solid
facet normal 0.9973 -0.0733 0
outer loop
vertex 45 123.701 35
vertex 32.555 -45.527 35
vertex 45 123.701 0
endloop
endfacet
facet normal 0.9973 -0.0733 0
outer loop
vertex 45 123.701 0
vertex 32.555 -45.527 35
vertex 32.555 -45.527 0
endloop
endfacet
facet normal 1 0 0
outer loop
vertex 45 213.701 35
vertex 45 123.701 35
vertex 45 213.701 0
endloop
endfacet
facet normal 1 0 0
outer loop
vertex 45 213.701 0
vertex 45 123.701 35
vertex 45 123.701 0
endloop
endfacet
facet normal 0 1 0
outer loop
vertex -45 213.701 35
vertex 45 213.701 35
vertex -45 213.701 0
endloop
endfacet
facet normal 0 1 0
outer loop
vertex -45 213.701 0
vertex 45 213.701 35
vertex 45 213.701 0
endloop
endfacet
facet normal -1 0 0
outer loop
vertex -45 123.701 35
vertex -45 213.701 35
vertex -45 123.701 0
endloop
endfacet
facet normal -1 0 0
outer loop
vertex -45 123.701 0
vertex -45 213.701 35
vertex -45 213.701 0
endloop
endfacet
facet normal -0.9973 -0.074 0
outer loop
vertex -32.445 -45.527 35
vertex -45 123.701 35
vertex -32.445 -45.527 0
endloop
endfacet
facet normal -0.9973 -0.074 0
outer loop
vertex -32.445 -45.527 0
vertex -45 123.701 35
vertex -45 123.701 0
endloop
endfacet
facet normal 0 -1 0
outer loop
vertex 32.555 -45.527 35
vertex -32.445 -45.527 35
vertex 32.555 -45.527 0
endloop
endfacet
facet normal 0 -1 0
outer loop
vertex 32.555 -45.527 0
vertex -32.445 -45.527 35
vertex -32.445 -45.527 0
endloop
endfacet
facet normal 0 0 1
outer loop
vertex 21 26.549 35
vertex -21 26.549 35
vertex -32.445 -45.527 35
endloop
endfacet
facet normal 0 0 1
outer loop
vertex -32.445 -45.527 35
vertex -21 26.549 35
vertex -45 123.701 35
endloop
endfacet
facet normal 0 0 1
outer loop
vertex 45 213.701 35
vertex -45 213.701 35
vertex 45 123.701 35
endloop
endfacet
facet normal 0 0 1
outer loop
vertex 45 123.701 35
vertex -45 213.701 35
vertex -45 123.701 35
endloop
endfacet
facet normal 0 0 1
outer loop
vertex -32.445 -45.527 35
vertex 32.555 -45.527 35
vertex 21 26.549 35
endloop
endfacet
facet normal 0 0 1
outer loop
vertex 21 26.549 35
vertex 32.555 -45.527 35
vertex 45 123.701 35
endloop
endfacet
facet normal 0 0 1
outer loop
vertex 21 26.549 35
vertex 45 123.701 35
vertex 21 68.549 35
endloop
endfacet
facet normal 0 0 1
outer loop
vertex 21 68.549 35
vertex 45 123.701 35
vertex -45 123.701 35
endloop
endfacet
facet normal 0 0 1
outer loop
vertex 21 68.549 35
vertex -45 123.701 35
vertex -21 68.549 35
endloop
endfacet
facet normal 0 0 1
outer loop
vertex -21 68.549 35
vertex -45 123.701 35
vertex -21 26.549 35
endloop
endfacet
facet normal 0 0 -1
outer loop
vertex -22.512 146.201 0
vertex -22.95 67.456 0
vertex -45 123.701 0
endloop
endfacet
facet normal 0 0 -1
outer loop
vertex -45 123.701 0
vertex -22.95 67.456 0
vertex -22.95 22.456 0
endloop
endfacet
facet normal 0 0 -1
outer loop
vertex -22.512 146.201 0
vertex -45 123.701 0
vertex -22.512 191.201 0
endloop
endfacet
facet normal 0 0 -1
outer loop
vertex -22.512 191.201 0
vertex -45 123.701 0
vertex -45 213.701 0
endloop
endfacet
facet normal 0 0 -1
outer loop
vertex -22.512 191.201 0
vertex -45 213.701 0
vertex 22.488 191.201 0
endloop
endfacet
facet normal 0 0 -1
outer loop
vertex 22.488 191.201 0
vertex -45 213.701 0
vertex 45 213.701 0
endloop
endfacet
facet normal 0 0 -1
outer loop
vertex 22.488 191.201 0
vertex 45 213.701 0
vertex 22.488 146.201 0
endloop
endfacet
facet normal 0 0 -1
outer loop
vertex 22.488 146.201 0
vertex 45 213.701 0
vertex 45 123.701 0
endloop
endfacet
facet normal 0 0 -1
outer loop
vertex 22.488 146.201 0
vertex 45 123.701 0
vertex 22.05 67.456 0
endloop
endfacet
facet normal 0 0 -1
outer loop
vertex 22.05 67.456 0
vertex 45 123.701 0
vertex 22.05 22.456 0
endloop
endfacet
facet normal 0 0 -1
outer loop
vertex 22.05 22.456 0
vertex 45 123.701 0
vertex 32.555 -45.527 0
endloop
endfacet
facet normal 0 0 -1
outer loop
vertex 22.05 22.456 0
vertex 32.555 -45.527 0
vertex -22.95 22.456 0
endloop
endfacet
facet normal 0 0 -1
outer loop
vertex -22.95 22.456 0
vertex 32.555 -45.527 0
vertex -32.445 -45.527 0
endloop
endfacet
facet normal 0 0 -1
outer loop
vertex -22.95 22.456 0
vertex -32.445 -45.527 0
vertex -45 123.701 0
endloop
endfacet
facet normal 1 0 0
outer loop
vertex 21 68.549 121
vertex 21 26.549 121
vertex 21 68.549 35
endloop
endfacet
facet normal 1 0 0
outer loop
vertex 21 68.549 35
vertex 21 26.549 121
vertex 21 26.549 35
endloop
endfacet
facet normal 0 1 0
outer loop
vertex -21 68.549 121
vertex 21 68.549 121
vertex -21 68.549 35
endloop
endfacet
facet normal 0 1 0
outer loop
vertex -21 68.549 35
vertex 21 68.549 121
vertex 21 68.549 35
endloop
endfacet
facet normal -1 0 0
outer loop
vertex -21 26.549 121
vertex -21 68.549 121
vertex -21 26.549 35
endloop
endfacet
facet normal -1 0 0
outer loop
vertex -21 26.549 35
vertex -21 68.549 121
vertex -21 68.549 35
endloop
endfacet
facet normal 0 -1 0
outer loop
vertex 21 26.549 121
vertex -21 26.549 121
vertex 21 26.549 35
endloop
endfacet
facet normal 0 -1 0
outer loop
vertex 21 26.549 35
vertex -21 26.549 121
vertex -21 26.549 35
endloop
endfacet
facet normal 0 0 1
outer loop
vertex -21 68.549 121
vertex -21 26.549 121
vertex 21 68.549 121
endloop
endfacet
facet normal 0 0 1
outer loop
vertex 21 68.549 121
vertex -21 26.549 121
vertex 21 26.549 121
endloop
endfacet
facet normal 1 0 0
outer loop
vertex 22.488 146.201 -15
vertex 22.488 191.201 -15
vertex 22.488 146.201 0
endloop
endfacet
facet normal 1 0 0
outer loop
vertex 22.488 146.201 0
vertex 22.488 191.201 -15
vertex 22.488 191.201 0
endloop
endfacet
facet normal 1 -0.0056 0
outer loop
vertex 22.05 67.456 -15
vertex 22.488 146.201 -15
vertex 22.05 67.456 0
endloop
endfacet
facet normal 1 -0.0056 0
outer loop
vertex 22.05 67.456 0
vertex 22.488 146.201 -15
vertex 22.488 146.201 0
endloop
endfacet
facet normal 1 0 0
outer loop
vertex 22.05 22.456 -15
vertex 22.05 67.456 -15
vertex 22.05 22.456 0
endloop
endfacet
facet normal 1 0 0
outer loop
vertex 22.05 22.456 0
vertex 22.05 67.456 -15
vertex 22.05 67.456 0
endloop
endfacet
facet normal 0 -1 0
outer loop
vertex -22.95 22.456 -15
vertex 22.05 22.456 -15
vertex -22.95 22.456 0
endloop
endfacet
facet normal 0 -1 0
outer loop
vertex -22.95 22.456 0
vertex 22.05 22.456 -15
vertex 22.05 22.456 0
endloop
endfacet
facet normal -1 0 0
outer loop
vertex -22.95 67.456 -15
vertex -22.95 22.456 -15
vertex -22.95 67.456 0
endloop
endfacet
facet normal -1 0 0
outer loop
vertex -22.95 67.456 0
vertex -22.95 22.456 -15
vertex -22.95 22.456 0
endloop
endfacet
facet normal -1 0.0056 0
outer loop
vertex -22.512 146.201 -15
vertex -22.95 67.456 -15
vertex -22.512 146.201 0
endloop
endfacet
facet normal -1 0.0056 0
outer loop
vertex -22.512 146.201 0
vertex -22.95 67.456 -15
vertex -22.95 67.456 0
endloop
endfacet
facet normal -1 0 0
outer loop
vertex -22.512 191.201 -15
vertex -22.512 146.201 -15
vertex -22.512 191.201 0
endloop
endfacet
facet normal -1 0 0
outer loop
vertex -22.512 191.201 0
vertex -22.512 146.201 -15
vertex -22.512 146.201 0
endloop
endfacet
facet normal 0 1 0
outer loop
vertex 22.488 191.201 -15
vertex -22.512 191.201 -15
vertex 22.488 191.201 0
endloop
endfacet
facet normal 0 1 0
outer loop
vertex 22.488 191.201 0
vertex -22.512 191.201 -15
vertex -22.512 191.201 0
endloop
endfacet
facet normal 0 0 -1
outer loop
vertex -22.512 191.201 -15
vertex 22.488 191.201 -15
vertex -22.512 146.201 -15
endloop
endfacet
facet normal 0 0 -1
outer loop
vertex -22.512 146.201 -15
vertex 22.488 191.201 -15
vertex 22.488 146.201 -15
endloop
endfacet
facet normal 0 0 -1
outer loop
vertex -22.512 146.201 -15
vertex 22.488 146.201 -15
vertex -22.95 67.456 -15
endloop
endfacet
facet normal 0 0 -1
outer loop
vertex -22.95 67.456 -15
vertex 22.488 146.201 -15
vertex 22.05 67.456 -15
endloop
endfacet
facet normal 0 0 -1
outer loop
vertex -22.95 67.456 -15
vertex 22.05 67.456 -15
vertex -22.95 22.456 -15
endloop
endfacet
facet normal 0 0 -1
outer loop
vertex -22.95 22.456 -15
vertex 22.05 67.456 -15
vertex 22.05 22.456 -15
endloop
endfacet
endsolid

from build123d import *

# Parameters (mm, degrees)
AUFSATZ_LINEAR_AUSTRAGEN1_DEPTH = 35
SKIZZE2_W                       = 42
SKIZZE2_H                       = 42
AUFSATZ_LINEAR_AUSTRAGEN2_DEPTH = 86
SKIZZE3_W                       = 45
SKIZZE3_H                       = 45
AUFSATZ_LINEAR_AUSTRAGEN3_DEPTH = 15


with BuildPart() as part:
    # Skizze1 → Aufsatz-Linear austragen1 (new body)
    with BuildSketch(Plane.XY):
        Polygon((-32.444894928, -45.526866225), (-45, 123.700952226), (-45, 213.700952226), (45, 213.700952226), (45, 123.700952226), (32.555105072, -45.526866225), align=None)
    extrude(amount=AUFSATZ_LINEAR_AUSTRAGEN1_DEPTH)

    # Skizze2 → Aufsatz-Linear austragen2 (add)
    with BuildSketch(Plane.XY.offset(35)):
        with Locations((0, 47.549073259)):
            Rectangle(SKIZZE2_W, SKIZZE2_H)
    extrude(amount=AUFSATZ_LINEAR_AUSTRAGEN2_DEPTH)

    # Skizze3 → Aufsatz-Linear austragen3 (add)
    with BuildSketch(Plane(origin=(0, 0, 0), x_dir=(-1, 0, 0), z_dir=(0, 0, -1))):
        with Locations((0.012439414, 168.70093099)):
            Rectangle(SKIZZE3_W, SKIZZE3_H)
        Polygon((-22.049769251, 67.455627916), (22.950230749, 67.455627916), (22.512439414, 146.20093099), (-22.487560586, 146.20093099), align=None)
        with Locations((0.450230749, 44.955627916)):
            Rectangle(SKIZZE3_W, SKIZZE3_H)
    extrude(amount=AUFSATZ_LINEAR_AUSTRAGEN3_DEPTH)


solid = part.part
